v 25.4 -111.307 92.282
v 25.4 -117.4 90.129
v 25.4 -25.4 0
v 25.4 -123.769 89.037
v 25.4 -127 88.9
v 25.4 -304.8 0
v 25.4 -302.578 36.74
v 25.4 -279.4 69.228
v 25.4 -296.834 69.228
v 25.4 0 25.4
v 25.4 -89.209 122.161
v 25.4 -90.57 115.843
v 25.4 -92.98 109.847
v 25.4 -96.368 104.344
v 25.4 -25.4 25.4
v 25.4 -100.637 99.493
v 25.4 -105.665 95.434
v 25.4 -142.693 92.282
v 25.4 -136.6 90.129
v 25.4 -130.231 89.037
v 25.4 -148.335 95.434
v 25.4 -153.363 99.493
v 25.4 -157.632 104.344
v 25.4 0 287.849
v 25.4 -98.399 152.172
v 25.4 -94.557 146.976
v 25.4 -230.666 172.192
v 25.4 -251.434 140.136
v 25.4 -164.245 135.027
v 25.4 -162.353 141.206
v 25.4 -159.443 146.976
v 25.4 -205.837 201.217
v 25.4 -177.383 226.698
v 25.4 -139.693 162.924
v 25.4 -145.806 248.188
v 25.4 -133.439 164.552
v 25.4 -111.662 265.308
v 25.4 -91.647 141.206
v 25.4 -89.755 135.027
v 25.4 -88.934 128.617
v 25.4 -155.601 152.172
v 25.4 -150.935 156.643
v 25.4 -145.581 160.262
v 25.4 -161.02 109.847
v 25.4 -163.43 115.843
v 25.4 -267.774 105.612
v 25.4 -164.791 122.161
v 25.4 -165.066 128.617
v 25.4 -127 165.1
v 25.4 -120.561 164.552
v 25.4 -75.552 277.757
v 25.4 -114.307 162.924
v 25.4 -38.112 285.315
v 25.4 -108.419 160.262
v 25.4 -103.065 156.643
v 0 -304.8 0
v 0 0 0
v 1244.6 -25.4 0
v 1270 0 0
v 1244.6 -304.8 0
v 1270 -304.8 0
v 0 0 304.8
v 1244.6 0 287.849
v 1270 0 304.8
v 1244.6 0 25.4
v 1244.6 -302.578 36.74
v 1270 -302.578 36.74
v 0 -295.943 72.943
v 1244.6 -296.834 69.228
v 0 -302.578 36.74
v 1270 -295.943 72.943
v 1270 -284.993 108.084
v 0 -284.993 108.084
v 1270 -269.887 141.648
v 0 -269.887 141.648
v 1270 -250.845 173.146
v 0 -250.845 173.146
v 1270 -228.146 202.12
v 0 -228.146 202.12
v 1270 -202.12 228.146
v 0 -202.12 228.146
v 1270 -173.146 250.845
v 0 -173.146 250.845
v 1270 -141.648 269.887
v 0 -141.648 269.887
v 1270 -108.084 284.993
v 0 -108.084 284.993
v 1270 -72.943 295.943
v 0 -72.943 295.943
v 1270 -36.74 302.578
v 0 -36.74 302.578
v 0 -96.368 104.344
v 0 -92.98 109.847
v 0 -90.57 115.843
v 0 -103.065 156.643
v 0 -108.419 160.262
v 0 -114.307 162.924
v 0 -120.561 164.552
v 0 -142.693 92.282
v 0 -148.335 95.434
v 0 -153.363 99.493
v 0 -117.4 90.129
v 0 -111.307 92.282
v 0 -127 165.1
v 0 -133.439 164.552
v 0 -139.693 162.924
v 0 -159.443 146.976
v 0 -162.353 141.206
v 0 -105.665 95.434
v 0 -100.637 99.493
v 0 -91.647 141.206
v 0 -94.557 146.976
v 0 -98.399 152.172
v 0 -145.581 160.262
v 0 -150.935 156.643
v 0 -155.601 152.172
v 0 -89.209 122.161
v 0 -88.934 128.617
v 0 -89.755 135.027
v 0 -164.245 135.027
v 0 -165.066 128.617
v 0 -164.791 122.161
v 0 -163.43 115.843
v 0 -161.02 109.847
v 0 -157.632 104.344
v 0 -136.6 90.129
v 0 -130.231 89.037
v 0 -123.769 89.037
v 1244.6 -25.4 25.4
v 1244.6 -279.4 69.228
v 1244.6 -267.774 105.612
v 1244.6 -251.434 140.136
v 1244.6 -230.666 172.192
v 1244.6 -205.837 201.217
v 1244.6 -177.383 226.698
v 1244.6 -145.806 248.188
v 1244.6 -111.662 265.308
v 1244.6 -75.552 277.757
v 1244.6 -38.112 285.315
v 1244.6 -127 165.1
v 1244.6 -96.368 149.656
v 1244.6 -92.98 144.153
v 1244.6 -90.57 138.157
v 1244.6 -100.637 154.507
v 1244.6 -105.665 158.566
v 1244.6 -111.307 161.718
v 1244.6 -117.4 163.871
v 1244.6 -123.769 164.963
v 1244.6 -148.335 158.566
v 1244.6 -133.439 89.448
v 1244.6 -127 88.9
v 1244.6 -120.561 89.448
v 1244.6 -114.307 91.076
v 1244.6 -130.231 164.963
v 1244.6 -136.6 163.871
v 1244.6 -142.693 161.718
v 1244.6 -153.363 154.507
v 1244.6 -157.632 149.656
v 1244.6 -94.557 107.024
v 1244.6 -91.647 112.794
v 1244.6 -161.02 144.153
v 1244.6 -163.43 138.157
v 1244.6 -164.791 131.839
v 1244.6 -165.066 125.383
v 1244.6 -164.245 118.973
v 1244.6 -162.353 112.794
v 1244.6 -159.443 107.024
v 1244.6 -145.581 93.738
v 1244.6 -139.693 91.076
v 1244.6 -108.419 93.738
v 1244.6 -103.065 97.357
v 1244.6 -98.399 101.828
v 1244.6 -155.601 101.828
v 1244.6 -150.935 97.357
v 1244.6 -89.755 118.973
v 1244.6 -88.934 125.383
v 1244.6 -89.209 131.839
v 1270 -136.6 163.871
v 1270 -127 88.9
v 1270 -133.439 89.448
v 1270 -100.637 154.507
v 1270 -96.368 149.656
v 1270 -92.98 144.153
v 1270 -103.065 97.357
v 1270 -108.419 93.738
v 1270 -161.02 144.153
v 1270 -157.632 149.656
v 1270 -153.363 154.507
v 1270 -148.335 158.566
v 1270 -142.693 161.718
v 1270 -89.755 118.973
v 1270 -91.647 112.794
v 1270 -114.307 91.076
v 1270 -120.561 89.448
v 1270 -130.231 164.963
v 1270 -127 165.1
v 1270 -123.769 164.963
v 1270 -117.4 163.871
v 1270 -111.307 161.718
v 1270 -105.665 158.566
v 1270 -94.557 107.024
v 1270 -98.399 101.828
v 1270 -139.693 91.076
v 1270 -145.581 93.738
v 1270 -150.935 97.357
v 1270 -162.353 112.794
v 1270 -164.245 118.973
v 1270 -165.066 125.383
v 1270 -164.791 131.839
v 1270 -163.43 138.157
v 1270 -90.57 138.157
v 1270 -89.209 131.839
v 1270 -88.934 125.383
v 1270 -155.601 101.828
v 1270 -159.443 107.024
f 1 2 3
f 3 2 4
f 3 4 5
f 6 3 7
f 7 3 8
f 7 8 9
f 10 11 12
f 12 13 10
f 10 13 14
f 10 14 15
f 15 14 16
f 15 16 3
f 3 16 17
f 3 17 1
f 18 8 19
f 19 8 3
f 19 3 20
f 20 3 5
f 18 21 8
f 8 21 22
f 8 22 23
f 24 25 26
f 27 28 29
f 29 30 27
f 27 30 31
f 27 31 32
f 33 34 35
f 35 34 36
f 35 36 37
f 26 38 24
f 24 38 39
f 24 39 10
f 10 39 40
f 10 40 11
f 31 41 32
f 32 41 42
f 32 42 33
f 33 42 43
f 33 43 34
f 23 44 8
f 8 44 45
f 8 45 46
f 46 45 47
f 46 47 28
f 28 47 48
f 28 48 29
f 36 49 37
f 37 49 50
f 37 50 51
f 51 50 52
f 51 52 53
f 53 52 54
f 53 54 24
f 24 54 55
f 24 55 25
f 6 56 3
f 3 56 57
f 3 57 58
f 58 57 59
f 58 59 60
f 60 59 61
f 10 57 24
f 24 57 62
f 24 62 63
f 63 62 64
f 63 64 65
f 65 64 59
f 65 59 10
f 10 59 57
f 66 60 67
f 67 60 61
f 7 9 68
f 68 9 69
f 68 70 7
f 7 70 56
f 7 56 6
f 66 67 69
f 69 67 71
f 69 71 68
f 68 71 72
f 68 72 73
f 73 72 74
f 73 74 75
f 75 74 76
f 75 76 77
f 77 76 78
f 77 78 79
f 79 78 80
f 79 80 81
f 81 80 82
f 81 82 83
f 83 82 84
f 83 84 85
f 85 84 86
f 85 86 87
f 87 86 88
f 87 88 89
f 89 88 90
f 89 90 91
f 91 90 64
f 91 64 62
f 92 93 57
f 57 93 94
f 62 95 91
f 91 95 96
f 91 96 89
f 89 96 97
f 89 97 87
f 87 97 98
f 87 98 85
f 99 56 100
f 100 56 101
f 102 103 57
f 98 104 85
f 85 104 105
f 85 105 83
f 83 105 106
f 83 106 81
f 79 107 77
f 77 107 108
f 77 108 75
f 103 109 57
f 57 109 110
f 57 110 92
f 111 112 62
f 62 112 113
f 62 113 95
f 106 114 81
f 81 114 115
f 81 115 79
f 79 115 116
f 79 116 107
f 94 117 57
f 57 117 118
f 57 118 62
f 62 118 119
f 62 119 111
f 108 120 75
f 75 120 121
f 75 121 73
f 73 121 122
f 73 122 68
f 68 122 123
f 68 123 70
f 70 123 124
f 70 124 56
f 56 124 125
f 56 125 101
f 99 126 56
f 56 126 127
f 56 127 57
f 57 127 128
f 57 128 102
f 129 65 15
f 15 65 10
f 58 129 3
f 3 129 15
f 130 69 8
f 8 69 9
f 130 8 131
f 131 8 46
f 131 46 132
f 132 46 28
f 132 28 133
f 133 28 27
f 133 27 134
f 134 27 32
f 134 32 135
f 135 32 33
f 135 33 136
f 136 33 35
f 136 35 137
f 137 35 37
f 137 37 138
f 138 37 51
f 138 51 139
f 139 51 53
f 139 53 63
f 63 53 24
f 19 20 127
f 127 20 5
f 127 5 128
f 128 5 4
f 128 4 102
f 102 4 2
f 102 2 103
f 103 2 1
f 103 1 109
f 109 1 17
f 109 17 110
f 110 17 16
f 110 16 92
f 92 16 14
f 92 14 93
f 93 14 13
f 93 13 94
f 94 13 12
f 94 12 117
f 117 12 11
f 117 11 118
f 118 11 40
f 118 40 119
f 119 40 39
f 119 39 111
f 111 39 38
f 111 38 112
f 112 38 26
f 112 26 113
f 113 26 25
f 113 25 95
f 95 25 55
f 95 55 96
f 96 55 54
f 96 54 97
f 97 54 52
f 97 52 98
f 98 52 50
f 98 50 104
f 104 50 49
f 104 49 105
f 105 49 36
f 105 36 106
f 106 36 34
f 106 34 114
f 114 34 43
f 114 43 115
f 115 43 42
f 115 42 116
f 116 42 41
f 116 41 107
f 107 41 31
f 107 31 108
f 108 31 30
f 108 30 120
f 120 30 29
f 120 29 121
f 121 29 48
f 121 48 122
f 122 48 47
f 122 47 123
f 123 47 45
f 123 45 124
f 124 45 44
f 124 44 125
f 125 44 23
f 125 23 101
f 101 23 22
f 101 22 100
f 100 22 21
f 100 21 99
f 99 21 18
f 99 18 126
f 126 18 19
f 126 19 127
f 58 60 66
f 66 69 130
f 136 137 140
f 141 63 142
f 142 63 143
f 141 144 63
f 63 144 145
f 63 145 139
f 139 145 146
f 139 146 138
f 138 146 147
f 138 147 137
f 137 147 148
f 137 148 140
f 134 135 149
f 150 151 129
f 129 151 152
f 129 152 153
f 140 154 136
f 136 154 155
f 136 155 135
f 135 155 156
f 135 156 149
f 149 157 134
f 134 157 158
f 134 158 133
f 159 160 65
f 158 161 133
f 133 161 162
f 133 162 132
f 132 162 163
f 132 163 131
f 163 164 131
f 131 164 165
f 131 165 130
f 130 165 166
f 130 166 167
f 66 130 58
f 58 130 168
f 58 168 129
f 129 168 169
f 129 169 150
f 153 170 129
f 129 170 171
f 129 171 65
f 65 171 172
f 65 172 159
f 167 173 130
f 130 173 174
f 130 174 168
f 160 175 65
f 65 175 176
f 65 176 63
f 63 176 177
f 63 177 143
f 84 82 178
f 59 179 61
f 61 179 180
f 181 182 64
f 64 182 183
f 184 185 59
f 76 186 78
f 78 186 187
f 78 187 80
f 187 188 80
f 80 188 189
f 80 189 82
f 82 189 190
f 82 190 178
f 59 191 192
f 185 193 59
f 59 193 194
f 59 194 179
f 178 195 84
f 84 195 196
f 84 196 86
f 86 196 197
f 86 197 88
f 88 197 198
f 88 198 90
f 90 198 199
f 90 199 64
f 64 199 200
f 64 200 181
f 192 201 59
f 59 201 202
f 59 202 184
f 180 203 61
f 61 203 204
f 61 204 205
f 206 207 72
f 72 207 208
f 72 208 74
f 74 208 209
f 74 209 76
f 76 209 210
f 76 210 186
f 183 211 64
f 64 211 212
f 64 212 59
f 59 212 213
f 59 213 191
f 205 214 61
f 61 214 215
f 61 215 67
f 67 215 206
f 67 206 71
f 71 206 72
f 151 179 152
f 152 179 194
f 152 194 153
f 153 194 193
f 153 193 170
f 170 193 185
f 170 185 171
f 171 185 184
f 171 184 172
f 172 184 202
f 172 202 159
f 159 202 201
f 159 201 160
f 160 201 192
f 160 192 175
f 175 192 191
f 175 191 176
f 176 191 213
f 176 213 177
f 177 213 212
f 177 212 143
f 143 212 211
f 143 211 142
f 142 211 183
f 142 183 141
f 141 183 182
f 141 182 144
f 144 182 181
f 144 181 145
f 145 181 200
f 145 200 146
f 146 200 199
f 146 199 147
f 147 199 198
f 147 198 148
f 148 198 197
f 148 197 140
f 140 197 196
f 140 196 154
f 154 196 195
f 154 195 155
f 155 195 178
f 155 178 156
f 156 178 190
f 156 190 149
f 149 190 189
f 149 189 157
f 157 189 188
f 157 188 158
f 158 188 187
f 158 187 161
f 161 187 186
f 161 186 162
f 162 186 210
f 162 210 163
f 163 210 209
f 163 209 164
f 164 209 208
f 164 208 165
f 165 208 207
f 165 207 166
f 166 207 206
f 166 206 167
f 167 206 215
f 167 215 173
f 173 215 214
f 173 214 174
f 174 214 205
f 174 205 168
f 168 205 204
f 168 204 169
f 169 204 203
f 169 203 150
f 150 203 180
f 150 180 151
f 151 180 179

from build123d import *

# Parameters (mm, degrees)
BOSS_EXTRUDE1_DEPTH = 25.4
SKETCH2_W           = 25.4
SKETCH2_H           = 25.4
BOSS_EXTRUDE2_DEPTH = 609.6
SKETCH3_R           = 38.1
CUT_EXTRUDE1_DEPTH  = 609.6


with BuildPart() as part:
    # Sketch1 → Boss-Extrude1 (new body)
    with BuildSketch(Plane(origin=(0, 0, 0), x_dir=(0, 0, -1), z_dir=(1, 0, 0))):
        with BuildLine():
            Line((0, 0), (-304.8, 0))
            ThreePointArc((-304.8, 0), (-215.526146906, -215.526146906), (0, -304.8))
            Line((0, -304.8), (0, 0))
        make_face()
    boss_extrude1 = extrude(amount=BOSS_EXTRUDE1_DEPTH)

    # Sketch2 → Boss-Extrude2 (add)
    with BuildSketch(Plane(origin=(25.4, 0, 0), x_dir=(0, 0, -1), z_dir=(1, 0, 0))):
        with BuildLine():
            Line((-304.8, 0), (-287.848767292, 0))
            ThreePointArc((-287.848767292, 0), (-226.698239846, -177.38325987), (-69.22826613, -279.4))
            Line((-69.22826613, -279.4), (-69.22826613, -296.834107152))
            ThreePointArc((-69.22826613, -296.834107152), (-238.750723053, -189.475941063), (-304.8, 0))
        make_face()
        with Locations((-12.7, -12.7)):
            Rectangle(SKETCH2_W, SKETCH2_H)
    boss_extrude2 = extrude(amount=BOSS_EXTRUDE2_DEPTH)

    # Sketch3 → Cut-Extrude1 (cut)
    with BuildSketch(Plane.ZY):
        with Locations((127, -127)):
            Circle(SKETCH3_R)
    cut_extrude1 = extrude(amount=-CUT_EXTRUDE1_DEPTH, mode=Mode.SUBTRACT)

    # Mirror2: Boss-Extrude2 across plane
    add(boss_extrude2.mirror(Plane(origin=(635, 0, 0), x_dir=(0, 0, 1), z_dir=(1, 0, 0))))

    # Mirror3: Boss-Extrude1 across plane
    add(boss_extrude1.mirror(Plane(origin=(635, 0, 0), x_dir=(0, 0, 1), z_dir=(1, 0, 0))))

    # Mirror4: Cut-Extrude1 across plane
    add(cut_extrude1.mirror(Plane(origin=(635, 0, 0), x_dir=(0, 0, 1), z_dir=(1, 0, 0))), mode=Mode.SUBTRACT)


solid = part.part
